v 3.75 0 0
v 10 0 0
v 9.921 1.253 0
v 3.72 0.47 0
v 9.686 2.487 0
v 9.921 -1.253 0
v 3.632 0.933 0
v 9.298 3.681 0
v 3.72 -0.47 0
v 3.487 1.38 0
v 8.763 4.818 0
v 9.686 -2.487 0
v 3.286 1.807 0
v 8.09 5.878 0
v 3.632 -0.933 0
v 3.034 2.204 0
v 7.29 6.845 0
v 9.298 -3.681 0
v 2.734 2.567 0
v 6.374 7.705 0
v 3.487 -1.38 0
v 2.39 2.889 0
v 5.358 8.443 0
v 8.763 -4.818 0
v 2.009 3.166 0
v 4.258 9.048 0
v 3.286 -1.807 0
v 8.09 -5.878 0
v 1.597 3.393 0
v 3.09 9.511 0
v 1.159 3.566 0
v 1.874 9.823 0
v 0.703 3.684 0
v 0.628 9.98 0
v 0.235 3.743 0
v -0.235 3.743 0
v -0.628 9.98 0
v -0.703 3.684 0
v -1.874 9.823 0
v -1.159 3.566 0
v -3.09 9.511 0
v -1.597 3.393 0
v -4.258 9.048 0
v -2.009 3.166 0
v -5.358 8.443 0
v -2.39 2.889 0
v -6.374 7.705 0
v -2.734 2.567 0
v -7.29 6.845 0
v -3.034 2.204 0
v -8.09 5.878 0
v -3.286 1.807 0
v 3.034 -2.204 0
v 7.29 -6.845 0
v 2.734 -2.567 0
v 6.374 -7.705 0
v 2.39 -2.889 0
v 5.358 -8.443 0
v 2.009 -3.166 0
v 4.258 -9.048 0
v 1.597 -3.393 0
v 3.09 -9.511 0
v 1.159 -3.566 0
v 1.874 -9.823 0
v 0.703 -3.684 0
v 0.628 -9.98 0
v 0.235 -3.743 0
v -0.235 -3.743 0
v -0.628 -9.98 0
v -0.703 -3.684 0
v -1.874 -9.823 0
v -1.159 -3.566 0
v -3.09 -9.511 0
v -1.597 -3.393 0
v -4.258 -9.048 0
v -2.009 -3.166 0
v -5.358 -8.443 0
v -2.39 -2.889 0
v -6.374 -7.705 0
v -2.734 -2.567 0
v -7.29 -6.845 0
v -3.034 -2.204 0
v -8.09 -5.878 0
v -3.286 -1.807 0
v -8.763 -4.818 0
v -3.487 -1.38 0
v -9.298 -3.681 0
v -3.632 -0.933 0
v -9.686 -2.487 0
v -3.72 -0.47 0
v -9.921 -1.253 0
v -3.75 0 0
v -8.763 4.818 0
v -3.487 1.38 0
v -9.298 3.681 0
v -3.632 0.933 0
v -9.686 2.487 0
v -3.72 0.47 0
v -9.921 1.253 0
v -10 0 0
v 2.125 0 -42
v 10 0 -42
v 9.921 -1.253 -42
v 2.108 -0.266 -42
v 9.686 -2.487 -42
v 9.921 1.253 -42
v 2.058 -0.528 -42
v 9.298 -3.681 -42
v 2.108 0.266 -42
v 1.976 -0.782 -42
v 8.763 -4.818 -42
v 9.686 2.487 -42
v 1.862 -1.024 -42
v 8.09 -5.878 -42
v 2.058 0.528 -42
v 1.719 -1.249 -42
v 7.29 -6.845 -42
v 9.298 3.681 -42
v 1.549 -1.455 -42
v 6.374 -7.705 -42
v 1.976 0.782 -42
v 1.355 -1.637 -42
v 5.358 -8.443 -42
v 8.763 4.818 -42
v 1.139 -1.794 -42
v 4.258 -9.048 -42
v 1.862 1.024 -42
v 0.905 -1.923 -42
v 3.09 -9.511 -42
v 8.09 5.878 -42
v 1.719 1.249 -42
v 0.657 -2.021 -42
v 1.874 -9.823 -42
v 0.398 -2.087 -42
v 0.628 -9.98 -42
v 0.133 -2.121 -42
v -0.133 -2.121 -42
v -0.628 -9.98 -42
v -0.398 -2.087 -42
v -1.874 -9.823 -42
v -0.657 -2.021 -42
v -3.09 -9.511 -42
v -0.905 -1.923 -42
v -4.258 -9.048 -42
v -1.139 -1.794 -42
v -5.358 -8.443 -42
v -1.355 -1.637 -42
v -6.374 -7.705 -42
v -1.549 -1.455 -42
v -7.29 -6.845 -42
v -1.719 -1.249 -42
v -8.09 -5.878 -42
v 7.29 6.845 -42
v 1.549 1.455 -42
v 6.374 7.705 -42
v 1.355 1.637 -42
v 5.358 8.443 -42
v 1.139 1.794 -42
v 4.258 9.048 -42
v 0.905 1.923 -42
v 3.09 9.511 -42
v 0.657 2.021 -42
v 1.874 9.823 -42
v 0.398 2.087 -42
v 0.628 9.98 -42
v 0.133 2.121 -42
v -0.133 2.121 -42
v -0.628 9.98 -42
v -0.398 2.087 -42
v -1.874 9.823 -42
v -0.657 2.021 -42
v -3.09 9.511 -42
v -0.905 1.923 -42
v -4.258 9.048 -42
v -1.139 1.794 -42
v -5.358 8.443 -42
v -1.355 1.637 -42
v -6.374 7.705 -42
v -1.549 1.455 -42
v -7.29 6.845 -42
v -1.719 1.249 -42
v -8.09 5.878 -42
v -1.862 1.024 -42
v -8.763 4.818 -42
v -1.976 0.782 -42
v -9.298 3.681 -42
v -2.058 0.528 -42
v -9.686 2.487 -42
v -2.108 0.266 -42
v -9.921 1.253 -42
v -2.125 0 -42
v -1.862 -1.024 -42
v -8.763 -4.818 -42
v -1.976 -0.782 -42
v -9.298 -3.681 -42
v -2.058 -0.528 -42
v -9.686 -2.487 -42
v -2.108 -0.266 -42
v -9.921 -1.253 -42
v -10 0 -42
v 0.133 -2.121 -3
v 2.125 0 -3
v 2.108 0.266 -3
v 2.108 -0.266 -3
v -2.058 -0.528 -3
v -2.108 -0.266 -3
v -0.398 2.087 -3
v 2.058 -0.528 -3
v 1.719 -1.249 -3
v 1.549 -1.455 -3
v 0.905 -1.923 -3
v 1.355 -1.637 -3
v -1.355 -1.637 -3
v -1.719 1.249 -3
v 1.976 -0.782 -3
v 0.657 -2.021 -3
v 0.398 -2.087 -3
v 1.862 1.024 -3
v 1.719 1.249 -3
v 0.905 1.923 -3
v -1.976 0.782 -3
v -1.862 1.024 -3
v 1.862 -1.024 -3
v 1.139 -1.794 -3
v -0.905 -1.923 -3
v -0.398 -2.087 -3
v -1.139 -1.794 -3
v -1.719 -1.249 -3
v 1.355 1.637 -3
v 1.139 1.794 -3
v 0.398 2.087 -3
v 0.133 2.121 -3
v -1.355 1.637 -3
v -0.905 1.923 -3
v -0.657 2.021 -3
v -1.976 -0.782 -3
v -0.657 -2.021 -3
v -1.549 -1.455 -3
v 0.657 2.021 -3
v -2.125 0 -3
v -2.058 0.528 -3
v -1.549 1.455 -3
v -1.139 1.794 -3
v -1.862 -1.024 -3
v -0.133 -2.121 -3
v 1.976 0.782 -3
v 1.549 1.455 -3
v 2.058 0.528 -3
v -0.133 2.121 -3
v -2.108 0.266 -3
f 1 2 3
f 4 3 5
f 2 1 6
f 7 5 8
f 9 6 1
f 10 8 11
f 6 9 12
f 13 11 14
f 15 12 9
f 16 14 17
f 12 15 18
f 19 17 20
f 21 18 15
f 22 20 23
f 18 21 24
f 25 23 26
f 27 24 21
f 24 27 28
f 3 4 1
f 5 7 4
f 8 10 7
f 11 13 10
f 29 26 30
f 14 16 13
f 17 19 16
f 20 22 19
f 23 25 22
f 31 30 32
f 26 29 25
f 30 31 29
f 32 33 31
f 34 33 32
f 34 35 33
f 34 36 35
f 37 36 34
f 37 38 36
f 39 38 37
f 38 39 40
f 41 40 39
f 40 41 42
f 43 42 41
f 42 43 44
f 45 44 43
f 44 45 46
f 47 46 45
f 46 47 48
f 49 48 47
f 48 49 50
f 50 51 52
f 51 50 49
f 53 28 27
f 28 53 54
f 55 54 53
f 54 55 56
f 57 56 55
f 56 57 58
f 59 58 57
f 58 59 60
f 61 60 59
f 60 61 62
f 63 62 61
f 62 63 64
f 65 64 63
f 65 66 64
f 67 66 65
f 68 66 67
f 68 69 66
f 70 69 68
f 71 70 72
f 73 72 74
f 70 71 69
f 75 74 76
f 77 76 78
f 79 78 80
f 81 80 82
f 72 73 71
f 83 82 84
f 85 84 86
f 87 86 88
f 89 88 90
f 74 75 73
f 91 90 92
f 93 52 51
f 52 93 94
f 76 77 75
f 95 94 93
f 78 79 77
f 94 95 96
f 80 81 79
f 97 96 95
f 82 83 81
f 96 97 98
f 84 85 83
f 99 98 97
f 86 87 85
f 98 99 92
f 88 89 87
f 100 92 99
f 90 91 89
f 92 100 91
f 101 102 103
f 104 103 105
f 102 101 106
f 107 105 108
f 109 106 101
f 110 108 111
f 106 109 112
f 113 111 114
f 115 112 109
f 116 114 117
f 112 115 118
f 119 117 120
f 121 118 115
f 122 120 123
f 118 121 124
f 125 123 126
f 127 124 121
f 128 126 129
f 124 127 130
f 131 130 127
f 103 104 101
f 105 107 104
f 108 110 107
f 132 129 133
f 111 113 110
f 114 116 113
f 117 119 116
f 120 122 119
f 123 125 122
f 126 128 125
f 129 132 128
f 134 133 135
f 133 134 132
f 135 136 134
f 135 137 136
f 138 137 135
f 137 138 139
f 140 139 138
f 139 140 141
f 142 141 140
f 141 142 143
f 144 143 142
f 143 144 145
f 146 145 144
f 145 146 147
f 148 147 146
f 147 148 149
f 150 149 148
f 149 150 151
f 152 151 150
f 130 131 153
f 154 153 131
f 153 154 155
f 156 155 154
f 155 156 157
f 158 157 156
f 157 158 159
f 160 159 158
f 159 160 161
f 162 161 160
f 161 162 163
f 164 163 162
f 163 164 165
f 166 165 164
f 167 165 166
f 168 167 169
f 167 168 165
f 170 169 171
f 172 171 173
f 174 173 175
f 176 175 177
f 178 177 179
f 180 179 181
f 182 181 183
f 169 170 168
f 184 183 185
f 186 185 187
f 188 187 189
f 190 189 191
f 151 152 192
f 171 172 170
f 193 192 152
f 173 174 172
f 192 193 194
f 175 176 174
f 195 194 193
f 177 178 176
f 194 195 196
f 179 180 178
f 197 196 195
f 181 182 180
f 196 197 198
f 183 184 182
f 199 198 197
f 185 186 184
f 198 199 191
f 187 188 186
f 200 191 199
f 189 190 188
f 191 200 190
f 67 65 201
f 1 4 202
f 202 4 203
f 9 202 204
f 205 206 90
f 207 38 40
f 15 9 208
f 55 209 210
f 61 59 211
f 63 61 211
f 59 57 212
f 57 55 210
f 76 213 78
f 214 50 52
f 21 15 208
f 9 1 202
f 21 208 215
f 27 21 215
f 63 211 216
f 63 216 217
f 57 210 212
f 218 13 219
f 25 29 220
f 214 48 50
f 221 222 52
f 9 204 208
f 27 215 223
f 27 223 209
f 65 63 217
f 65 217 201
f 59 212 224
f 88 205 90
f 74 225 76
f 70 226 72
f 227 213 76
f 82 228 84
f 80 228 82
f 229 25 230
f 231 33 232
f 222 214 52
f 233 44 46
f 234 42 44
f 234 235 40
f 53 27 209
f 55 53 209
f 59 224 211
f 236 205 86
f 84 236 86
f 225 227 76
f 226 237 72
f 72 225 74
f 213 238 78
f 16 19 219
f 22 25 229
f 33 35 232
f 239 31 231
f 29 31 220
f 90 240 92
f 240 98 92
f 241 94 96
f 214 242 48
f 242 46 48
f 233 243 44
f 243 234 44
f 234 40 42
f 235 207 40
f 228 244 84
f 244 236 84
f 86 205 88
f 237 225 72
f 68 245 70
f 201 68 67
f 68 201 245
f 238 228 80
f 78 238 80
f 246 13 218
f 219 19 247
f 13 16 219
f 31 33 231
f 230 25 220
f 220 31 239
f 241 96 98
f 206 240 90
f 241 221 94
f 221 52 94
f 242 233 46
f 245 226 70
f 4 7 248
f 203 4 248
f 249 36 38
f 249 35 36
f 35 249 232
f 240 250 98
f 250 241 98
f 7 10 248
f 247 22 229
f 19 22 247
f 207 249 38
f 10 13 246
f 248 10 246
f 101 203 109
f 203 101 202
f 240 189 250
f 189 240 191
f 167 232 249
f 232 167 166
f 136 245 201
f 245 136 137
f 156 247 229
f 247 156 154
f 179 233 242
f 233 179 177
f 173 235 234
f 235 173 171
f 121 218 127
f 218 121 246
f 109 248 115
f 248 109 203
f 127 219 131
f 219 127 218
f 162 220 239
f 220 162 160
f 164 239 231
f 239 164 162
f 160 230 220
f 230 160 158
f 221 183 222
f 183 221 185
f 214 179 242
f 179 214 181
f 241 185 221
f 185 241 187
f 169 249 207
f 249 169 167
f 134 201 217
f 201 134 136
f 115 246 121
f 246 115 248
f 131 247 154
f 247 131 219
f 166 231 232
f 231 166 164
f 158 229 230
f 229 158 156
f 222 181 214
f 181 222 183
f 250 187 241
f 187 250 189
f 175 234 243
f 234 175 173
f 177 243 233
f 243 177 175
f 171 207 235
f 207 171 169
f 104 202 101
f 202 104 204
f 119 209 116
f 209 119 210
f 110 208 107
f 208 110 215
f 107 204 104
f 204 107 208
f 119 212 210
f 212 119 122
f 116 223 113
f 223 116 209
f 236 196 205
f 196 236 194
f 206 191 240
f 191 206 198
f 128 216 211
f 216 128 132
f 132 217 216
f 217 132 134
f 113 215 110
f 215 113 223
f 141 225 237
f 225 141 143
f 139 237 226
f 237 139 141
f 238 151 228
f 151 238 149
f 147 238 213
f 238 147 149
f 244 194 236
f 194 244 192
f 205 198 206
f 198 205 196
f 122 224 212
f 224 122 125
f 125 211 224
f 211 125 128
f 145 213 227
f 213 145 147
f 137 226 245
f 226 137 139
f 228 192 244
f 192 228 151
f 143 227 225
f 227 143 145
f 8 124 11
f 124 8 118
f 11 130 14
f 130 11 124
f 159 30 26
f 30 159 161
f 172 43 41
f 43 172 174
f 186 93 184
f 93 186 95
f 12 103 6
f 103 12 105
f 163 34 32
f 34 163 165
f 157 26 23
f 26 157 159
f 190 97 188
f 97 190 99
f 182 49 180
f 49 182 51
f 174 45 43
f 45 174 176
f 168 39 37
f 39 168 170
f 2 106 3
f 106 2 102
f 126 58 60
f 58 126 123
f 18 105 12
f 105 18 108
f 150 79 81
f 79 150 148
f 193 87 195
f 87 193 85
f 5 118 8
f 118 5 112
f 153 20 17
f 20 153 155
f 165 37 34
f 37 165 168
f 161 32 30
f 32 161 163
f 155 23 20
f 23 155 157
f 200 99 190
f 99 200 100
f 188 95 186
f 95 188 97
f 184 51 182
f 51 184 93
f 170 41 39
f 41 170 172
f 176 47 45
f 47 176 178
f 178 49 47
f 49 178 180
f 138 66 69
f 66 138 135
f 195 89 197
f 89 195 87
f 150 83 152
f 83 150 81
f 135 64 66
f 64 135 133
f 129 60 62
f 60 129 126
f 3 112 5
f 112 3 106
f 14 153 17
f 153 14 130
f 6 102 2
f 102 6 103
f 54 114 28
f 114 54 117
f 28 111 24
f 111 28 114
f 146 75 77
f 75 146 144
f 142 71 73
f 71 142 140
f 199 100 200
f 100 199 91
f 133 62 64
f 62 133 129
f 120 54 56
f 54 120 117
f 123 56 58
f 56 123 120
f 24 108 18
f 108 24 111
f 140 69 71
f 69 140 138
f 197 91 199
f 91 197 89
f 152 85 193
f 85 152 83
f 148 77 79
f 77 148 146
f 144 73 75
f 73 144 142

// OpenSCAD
$fn = 50;


difference() {
	union() {
		translate(v = [0, 0, -42.0000000000]) {
			cylinder(h = 42, r = 10.0000000000);
		}
		cylinder(h = 0, r = 16.0000000000);
	}
	union() {
		translate(v = [0, 0, 0]) {
			rotate(a = [0, 0, 0]) {
				difference() {
					union() {
						#translate(v = [0, 0, -42.0000000000]) {
							cylinder(h = 42, r = 2.0000000000);
						}
						#translate(v = [0, 0, -3]) {
							cylinder(h = 3, r1 = 2.1250000000, r2 = 3.7500000000);
						}
						#translate(v = [0, 0, -42.0000000000]) {
							cylinder(h = 42, r = 2.1250000000);
						}
						#translate(v = [0, 0, -42.0000000000]) {
							cylinder(h = 42, r = 2.0000000000);
						}
					}
					union();
				}
			}
		}
	}
}
